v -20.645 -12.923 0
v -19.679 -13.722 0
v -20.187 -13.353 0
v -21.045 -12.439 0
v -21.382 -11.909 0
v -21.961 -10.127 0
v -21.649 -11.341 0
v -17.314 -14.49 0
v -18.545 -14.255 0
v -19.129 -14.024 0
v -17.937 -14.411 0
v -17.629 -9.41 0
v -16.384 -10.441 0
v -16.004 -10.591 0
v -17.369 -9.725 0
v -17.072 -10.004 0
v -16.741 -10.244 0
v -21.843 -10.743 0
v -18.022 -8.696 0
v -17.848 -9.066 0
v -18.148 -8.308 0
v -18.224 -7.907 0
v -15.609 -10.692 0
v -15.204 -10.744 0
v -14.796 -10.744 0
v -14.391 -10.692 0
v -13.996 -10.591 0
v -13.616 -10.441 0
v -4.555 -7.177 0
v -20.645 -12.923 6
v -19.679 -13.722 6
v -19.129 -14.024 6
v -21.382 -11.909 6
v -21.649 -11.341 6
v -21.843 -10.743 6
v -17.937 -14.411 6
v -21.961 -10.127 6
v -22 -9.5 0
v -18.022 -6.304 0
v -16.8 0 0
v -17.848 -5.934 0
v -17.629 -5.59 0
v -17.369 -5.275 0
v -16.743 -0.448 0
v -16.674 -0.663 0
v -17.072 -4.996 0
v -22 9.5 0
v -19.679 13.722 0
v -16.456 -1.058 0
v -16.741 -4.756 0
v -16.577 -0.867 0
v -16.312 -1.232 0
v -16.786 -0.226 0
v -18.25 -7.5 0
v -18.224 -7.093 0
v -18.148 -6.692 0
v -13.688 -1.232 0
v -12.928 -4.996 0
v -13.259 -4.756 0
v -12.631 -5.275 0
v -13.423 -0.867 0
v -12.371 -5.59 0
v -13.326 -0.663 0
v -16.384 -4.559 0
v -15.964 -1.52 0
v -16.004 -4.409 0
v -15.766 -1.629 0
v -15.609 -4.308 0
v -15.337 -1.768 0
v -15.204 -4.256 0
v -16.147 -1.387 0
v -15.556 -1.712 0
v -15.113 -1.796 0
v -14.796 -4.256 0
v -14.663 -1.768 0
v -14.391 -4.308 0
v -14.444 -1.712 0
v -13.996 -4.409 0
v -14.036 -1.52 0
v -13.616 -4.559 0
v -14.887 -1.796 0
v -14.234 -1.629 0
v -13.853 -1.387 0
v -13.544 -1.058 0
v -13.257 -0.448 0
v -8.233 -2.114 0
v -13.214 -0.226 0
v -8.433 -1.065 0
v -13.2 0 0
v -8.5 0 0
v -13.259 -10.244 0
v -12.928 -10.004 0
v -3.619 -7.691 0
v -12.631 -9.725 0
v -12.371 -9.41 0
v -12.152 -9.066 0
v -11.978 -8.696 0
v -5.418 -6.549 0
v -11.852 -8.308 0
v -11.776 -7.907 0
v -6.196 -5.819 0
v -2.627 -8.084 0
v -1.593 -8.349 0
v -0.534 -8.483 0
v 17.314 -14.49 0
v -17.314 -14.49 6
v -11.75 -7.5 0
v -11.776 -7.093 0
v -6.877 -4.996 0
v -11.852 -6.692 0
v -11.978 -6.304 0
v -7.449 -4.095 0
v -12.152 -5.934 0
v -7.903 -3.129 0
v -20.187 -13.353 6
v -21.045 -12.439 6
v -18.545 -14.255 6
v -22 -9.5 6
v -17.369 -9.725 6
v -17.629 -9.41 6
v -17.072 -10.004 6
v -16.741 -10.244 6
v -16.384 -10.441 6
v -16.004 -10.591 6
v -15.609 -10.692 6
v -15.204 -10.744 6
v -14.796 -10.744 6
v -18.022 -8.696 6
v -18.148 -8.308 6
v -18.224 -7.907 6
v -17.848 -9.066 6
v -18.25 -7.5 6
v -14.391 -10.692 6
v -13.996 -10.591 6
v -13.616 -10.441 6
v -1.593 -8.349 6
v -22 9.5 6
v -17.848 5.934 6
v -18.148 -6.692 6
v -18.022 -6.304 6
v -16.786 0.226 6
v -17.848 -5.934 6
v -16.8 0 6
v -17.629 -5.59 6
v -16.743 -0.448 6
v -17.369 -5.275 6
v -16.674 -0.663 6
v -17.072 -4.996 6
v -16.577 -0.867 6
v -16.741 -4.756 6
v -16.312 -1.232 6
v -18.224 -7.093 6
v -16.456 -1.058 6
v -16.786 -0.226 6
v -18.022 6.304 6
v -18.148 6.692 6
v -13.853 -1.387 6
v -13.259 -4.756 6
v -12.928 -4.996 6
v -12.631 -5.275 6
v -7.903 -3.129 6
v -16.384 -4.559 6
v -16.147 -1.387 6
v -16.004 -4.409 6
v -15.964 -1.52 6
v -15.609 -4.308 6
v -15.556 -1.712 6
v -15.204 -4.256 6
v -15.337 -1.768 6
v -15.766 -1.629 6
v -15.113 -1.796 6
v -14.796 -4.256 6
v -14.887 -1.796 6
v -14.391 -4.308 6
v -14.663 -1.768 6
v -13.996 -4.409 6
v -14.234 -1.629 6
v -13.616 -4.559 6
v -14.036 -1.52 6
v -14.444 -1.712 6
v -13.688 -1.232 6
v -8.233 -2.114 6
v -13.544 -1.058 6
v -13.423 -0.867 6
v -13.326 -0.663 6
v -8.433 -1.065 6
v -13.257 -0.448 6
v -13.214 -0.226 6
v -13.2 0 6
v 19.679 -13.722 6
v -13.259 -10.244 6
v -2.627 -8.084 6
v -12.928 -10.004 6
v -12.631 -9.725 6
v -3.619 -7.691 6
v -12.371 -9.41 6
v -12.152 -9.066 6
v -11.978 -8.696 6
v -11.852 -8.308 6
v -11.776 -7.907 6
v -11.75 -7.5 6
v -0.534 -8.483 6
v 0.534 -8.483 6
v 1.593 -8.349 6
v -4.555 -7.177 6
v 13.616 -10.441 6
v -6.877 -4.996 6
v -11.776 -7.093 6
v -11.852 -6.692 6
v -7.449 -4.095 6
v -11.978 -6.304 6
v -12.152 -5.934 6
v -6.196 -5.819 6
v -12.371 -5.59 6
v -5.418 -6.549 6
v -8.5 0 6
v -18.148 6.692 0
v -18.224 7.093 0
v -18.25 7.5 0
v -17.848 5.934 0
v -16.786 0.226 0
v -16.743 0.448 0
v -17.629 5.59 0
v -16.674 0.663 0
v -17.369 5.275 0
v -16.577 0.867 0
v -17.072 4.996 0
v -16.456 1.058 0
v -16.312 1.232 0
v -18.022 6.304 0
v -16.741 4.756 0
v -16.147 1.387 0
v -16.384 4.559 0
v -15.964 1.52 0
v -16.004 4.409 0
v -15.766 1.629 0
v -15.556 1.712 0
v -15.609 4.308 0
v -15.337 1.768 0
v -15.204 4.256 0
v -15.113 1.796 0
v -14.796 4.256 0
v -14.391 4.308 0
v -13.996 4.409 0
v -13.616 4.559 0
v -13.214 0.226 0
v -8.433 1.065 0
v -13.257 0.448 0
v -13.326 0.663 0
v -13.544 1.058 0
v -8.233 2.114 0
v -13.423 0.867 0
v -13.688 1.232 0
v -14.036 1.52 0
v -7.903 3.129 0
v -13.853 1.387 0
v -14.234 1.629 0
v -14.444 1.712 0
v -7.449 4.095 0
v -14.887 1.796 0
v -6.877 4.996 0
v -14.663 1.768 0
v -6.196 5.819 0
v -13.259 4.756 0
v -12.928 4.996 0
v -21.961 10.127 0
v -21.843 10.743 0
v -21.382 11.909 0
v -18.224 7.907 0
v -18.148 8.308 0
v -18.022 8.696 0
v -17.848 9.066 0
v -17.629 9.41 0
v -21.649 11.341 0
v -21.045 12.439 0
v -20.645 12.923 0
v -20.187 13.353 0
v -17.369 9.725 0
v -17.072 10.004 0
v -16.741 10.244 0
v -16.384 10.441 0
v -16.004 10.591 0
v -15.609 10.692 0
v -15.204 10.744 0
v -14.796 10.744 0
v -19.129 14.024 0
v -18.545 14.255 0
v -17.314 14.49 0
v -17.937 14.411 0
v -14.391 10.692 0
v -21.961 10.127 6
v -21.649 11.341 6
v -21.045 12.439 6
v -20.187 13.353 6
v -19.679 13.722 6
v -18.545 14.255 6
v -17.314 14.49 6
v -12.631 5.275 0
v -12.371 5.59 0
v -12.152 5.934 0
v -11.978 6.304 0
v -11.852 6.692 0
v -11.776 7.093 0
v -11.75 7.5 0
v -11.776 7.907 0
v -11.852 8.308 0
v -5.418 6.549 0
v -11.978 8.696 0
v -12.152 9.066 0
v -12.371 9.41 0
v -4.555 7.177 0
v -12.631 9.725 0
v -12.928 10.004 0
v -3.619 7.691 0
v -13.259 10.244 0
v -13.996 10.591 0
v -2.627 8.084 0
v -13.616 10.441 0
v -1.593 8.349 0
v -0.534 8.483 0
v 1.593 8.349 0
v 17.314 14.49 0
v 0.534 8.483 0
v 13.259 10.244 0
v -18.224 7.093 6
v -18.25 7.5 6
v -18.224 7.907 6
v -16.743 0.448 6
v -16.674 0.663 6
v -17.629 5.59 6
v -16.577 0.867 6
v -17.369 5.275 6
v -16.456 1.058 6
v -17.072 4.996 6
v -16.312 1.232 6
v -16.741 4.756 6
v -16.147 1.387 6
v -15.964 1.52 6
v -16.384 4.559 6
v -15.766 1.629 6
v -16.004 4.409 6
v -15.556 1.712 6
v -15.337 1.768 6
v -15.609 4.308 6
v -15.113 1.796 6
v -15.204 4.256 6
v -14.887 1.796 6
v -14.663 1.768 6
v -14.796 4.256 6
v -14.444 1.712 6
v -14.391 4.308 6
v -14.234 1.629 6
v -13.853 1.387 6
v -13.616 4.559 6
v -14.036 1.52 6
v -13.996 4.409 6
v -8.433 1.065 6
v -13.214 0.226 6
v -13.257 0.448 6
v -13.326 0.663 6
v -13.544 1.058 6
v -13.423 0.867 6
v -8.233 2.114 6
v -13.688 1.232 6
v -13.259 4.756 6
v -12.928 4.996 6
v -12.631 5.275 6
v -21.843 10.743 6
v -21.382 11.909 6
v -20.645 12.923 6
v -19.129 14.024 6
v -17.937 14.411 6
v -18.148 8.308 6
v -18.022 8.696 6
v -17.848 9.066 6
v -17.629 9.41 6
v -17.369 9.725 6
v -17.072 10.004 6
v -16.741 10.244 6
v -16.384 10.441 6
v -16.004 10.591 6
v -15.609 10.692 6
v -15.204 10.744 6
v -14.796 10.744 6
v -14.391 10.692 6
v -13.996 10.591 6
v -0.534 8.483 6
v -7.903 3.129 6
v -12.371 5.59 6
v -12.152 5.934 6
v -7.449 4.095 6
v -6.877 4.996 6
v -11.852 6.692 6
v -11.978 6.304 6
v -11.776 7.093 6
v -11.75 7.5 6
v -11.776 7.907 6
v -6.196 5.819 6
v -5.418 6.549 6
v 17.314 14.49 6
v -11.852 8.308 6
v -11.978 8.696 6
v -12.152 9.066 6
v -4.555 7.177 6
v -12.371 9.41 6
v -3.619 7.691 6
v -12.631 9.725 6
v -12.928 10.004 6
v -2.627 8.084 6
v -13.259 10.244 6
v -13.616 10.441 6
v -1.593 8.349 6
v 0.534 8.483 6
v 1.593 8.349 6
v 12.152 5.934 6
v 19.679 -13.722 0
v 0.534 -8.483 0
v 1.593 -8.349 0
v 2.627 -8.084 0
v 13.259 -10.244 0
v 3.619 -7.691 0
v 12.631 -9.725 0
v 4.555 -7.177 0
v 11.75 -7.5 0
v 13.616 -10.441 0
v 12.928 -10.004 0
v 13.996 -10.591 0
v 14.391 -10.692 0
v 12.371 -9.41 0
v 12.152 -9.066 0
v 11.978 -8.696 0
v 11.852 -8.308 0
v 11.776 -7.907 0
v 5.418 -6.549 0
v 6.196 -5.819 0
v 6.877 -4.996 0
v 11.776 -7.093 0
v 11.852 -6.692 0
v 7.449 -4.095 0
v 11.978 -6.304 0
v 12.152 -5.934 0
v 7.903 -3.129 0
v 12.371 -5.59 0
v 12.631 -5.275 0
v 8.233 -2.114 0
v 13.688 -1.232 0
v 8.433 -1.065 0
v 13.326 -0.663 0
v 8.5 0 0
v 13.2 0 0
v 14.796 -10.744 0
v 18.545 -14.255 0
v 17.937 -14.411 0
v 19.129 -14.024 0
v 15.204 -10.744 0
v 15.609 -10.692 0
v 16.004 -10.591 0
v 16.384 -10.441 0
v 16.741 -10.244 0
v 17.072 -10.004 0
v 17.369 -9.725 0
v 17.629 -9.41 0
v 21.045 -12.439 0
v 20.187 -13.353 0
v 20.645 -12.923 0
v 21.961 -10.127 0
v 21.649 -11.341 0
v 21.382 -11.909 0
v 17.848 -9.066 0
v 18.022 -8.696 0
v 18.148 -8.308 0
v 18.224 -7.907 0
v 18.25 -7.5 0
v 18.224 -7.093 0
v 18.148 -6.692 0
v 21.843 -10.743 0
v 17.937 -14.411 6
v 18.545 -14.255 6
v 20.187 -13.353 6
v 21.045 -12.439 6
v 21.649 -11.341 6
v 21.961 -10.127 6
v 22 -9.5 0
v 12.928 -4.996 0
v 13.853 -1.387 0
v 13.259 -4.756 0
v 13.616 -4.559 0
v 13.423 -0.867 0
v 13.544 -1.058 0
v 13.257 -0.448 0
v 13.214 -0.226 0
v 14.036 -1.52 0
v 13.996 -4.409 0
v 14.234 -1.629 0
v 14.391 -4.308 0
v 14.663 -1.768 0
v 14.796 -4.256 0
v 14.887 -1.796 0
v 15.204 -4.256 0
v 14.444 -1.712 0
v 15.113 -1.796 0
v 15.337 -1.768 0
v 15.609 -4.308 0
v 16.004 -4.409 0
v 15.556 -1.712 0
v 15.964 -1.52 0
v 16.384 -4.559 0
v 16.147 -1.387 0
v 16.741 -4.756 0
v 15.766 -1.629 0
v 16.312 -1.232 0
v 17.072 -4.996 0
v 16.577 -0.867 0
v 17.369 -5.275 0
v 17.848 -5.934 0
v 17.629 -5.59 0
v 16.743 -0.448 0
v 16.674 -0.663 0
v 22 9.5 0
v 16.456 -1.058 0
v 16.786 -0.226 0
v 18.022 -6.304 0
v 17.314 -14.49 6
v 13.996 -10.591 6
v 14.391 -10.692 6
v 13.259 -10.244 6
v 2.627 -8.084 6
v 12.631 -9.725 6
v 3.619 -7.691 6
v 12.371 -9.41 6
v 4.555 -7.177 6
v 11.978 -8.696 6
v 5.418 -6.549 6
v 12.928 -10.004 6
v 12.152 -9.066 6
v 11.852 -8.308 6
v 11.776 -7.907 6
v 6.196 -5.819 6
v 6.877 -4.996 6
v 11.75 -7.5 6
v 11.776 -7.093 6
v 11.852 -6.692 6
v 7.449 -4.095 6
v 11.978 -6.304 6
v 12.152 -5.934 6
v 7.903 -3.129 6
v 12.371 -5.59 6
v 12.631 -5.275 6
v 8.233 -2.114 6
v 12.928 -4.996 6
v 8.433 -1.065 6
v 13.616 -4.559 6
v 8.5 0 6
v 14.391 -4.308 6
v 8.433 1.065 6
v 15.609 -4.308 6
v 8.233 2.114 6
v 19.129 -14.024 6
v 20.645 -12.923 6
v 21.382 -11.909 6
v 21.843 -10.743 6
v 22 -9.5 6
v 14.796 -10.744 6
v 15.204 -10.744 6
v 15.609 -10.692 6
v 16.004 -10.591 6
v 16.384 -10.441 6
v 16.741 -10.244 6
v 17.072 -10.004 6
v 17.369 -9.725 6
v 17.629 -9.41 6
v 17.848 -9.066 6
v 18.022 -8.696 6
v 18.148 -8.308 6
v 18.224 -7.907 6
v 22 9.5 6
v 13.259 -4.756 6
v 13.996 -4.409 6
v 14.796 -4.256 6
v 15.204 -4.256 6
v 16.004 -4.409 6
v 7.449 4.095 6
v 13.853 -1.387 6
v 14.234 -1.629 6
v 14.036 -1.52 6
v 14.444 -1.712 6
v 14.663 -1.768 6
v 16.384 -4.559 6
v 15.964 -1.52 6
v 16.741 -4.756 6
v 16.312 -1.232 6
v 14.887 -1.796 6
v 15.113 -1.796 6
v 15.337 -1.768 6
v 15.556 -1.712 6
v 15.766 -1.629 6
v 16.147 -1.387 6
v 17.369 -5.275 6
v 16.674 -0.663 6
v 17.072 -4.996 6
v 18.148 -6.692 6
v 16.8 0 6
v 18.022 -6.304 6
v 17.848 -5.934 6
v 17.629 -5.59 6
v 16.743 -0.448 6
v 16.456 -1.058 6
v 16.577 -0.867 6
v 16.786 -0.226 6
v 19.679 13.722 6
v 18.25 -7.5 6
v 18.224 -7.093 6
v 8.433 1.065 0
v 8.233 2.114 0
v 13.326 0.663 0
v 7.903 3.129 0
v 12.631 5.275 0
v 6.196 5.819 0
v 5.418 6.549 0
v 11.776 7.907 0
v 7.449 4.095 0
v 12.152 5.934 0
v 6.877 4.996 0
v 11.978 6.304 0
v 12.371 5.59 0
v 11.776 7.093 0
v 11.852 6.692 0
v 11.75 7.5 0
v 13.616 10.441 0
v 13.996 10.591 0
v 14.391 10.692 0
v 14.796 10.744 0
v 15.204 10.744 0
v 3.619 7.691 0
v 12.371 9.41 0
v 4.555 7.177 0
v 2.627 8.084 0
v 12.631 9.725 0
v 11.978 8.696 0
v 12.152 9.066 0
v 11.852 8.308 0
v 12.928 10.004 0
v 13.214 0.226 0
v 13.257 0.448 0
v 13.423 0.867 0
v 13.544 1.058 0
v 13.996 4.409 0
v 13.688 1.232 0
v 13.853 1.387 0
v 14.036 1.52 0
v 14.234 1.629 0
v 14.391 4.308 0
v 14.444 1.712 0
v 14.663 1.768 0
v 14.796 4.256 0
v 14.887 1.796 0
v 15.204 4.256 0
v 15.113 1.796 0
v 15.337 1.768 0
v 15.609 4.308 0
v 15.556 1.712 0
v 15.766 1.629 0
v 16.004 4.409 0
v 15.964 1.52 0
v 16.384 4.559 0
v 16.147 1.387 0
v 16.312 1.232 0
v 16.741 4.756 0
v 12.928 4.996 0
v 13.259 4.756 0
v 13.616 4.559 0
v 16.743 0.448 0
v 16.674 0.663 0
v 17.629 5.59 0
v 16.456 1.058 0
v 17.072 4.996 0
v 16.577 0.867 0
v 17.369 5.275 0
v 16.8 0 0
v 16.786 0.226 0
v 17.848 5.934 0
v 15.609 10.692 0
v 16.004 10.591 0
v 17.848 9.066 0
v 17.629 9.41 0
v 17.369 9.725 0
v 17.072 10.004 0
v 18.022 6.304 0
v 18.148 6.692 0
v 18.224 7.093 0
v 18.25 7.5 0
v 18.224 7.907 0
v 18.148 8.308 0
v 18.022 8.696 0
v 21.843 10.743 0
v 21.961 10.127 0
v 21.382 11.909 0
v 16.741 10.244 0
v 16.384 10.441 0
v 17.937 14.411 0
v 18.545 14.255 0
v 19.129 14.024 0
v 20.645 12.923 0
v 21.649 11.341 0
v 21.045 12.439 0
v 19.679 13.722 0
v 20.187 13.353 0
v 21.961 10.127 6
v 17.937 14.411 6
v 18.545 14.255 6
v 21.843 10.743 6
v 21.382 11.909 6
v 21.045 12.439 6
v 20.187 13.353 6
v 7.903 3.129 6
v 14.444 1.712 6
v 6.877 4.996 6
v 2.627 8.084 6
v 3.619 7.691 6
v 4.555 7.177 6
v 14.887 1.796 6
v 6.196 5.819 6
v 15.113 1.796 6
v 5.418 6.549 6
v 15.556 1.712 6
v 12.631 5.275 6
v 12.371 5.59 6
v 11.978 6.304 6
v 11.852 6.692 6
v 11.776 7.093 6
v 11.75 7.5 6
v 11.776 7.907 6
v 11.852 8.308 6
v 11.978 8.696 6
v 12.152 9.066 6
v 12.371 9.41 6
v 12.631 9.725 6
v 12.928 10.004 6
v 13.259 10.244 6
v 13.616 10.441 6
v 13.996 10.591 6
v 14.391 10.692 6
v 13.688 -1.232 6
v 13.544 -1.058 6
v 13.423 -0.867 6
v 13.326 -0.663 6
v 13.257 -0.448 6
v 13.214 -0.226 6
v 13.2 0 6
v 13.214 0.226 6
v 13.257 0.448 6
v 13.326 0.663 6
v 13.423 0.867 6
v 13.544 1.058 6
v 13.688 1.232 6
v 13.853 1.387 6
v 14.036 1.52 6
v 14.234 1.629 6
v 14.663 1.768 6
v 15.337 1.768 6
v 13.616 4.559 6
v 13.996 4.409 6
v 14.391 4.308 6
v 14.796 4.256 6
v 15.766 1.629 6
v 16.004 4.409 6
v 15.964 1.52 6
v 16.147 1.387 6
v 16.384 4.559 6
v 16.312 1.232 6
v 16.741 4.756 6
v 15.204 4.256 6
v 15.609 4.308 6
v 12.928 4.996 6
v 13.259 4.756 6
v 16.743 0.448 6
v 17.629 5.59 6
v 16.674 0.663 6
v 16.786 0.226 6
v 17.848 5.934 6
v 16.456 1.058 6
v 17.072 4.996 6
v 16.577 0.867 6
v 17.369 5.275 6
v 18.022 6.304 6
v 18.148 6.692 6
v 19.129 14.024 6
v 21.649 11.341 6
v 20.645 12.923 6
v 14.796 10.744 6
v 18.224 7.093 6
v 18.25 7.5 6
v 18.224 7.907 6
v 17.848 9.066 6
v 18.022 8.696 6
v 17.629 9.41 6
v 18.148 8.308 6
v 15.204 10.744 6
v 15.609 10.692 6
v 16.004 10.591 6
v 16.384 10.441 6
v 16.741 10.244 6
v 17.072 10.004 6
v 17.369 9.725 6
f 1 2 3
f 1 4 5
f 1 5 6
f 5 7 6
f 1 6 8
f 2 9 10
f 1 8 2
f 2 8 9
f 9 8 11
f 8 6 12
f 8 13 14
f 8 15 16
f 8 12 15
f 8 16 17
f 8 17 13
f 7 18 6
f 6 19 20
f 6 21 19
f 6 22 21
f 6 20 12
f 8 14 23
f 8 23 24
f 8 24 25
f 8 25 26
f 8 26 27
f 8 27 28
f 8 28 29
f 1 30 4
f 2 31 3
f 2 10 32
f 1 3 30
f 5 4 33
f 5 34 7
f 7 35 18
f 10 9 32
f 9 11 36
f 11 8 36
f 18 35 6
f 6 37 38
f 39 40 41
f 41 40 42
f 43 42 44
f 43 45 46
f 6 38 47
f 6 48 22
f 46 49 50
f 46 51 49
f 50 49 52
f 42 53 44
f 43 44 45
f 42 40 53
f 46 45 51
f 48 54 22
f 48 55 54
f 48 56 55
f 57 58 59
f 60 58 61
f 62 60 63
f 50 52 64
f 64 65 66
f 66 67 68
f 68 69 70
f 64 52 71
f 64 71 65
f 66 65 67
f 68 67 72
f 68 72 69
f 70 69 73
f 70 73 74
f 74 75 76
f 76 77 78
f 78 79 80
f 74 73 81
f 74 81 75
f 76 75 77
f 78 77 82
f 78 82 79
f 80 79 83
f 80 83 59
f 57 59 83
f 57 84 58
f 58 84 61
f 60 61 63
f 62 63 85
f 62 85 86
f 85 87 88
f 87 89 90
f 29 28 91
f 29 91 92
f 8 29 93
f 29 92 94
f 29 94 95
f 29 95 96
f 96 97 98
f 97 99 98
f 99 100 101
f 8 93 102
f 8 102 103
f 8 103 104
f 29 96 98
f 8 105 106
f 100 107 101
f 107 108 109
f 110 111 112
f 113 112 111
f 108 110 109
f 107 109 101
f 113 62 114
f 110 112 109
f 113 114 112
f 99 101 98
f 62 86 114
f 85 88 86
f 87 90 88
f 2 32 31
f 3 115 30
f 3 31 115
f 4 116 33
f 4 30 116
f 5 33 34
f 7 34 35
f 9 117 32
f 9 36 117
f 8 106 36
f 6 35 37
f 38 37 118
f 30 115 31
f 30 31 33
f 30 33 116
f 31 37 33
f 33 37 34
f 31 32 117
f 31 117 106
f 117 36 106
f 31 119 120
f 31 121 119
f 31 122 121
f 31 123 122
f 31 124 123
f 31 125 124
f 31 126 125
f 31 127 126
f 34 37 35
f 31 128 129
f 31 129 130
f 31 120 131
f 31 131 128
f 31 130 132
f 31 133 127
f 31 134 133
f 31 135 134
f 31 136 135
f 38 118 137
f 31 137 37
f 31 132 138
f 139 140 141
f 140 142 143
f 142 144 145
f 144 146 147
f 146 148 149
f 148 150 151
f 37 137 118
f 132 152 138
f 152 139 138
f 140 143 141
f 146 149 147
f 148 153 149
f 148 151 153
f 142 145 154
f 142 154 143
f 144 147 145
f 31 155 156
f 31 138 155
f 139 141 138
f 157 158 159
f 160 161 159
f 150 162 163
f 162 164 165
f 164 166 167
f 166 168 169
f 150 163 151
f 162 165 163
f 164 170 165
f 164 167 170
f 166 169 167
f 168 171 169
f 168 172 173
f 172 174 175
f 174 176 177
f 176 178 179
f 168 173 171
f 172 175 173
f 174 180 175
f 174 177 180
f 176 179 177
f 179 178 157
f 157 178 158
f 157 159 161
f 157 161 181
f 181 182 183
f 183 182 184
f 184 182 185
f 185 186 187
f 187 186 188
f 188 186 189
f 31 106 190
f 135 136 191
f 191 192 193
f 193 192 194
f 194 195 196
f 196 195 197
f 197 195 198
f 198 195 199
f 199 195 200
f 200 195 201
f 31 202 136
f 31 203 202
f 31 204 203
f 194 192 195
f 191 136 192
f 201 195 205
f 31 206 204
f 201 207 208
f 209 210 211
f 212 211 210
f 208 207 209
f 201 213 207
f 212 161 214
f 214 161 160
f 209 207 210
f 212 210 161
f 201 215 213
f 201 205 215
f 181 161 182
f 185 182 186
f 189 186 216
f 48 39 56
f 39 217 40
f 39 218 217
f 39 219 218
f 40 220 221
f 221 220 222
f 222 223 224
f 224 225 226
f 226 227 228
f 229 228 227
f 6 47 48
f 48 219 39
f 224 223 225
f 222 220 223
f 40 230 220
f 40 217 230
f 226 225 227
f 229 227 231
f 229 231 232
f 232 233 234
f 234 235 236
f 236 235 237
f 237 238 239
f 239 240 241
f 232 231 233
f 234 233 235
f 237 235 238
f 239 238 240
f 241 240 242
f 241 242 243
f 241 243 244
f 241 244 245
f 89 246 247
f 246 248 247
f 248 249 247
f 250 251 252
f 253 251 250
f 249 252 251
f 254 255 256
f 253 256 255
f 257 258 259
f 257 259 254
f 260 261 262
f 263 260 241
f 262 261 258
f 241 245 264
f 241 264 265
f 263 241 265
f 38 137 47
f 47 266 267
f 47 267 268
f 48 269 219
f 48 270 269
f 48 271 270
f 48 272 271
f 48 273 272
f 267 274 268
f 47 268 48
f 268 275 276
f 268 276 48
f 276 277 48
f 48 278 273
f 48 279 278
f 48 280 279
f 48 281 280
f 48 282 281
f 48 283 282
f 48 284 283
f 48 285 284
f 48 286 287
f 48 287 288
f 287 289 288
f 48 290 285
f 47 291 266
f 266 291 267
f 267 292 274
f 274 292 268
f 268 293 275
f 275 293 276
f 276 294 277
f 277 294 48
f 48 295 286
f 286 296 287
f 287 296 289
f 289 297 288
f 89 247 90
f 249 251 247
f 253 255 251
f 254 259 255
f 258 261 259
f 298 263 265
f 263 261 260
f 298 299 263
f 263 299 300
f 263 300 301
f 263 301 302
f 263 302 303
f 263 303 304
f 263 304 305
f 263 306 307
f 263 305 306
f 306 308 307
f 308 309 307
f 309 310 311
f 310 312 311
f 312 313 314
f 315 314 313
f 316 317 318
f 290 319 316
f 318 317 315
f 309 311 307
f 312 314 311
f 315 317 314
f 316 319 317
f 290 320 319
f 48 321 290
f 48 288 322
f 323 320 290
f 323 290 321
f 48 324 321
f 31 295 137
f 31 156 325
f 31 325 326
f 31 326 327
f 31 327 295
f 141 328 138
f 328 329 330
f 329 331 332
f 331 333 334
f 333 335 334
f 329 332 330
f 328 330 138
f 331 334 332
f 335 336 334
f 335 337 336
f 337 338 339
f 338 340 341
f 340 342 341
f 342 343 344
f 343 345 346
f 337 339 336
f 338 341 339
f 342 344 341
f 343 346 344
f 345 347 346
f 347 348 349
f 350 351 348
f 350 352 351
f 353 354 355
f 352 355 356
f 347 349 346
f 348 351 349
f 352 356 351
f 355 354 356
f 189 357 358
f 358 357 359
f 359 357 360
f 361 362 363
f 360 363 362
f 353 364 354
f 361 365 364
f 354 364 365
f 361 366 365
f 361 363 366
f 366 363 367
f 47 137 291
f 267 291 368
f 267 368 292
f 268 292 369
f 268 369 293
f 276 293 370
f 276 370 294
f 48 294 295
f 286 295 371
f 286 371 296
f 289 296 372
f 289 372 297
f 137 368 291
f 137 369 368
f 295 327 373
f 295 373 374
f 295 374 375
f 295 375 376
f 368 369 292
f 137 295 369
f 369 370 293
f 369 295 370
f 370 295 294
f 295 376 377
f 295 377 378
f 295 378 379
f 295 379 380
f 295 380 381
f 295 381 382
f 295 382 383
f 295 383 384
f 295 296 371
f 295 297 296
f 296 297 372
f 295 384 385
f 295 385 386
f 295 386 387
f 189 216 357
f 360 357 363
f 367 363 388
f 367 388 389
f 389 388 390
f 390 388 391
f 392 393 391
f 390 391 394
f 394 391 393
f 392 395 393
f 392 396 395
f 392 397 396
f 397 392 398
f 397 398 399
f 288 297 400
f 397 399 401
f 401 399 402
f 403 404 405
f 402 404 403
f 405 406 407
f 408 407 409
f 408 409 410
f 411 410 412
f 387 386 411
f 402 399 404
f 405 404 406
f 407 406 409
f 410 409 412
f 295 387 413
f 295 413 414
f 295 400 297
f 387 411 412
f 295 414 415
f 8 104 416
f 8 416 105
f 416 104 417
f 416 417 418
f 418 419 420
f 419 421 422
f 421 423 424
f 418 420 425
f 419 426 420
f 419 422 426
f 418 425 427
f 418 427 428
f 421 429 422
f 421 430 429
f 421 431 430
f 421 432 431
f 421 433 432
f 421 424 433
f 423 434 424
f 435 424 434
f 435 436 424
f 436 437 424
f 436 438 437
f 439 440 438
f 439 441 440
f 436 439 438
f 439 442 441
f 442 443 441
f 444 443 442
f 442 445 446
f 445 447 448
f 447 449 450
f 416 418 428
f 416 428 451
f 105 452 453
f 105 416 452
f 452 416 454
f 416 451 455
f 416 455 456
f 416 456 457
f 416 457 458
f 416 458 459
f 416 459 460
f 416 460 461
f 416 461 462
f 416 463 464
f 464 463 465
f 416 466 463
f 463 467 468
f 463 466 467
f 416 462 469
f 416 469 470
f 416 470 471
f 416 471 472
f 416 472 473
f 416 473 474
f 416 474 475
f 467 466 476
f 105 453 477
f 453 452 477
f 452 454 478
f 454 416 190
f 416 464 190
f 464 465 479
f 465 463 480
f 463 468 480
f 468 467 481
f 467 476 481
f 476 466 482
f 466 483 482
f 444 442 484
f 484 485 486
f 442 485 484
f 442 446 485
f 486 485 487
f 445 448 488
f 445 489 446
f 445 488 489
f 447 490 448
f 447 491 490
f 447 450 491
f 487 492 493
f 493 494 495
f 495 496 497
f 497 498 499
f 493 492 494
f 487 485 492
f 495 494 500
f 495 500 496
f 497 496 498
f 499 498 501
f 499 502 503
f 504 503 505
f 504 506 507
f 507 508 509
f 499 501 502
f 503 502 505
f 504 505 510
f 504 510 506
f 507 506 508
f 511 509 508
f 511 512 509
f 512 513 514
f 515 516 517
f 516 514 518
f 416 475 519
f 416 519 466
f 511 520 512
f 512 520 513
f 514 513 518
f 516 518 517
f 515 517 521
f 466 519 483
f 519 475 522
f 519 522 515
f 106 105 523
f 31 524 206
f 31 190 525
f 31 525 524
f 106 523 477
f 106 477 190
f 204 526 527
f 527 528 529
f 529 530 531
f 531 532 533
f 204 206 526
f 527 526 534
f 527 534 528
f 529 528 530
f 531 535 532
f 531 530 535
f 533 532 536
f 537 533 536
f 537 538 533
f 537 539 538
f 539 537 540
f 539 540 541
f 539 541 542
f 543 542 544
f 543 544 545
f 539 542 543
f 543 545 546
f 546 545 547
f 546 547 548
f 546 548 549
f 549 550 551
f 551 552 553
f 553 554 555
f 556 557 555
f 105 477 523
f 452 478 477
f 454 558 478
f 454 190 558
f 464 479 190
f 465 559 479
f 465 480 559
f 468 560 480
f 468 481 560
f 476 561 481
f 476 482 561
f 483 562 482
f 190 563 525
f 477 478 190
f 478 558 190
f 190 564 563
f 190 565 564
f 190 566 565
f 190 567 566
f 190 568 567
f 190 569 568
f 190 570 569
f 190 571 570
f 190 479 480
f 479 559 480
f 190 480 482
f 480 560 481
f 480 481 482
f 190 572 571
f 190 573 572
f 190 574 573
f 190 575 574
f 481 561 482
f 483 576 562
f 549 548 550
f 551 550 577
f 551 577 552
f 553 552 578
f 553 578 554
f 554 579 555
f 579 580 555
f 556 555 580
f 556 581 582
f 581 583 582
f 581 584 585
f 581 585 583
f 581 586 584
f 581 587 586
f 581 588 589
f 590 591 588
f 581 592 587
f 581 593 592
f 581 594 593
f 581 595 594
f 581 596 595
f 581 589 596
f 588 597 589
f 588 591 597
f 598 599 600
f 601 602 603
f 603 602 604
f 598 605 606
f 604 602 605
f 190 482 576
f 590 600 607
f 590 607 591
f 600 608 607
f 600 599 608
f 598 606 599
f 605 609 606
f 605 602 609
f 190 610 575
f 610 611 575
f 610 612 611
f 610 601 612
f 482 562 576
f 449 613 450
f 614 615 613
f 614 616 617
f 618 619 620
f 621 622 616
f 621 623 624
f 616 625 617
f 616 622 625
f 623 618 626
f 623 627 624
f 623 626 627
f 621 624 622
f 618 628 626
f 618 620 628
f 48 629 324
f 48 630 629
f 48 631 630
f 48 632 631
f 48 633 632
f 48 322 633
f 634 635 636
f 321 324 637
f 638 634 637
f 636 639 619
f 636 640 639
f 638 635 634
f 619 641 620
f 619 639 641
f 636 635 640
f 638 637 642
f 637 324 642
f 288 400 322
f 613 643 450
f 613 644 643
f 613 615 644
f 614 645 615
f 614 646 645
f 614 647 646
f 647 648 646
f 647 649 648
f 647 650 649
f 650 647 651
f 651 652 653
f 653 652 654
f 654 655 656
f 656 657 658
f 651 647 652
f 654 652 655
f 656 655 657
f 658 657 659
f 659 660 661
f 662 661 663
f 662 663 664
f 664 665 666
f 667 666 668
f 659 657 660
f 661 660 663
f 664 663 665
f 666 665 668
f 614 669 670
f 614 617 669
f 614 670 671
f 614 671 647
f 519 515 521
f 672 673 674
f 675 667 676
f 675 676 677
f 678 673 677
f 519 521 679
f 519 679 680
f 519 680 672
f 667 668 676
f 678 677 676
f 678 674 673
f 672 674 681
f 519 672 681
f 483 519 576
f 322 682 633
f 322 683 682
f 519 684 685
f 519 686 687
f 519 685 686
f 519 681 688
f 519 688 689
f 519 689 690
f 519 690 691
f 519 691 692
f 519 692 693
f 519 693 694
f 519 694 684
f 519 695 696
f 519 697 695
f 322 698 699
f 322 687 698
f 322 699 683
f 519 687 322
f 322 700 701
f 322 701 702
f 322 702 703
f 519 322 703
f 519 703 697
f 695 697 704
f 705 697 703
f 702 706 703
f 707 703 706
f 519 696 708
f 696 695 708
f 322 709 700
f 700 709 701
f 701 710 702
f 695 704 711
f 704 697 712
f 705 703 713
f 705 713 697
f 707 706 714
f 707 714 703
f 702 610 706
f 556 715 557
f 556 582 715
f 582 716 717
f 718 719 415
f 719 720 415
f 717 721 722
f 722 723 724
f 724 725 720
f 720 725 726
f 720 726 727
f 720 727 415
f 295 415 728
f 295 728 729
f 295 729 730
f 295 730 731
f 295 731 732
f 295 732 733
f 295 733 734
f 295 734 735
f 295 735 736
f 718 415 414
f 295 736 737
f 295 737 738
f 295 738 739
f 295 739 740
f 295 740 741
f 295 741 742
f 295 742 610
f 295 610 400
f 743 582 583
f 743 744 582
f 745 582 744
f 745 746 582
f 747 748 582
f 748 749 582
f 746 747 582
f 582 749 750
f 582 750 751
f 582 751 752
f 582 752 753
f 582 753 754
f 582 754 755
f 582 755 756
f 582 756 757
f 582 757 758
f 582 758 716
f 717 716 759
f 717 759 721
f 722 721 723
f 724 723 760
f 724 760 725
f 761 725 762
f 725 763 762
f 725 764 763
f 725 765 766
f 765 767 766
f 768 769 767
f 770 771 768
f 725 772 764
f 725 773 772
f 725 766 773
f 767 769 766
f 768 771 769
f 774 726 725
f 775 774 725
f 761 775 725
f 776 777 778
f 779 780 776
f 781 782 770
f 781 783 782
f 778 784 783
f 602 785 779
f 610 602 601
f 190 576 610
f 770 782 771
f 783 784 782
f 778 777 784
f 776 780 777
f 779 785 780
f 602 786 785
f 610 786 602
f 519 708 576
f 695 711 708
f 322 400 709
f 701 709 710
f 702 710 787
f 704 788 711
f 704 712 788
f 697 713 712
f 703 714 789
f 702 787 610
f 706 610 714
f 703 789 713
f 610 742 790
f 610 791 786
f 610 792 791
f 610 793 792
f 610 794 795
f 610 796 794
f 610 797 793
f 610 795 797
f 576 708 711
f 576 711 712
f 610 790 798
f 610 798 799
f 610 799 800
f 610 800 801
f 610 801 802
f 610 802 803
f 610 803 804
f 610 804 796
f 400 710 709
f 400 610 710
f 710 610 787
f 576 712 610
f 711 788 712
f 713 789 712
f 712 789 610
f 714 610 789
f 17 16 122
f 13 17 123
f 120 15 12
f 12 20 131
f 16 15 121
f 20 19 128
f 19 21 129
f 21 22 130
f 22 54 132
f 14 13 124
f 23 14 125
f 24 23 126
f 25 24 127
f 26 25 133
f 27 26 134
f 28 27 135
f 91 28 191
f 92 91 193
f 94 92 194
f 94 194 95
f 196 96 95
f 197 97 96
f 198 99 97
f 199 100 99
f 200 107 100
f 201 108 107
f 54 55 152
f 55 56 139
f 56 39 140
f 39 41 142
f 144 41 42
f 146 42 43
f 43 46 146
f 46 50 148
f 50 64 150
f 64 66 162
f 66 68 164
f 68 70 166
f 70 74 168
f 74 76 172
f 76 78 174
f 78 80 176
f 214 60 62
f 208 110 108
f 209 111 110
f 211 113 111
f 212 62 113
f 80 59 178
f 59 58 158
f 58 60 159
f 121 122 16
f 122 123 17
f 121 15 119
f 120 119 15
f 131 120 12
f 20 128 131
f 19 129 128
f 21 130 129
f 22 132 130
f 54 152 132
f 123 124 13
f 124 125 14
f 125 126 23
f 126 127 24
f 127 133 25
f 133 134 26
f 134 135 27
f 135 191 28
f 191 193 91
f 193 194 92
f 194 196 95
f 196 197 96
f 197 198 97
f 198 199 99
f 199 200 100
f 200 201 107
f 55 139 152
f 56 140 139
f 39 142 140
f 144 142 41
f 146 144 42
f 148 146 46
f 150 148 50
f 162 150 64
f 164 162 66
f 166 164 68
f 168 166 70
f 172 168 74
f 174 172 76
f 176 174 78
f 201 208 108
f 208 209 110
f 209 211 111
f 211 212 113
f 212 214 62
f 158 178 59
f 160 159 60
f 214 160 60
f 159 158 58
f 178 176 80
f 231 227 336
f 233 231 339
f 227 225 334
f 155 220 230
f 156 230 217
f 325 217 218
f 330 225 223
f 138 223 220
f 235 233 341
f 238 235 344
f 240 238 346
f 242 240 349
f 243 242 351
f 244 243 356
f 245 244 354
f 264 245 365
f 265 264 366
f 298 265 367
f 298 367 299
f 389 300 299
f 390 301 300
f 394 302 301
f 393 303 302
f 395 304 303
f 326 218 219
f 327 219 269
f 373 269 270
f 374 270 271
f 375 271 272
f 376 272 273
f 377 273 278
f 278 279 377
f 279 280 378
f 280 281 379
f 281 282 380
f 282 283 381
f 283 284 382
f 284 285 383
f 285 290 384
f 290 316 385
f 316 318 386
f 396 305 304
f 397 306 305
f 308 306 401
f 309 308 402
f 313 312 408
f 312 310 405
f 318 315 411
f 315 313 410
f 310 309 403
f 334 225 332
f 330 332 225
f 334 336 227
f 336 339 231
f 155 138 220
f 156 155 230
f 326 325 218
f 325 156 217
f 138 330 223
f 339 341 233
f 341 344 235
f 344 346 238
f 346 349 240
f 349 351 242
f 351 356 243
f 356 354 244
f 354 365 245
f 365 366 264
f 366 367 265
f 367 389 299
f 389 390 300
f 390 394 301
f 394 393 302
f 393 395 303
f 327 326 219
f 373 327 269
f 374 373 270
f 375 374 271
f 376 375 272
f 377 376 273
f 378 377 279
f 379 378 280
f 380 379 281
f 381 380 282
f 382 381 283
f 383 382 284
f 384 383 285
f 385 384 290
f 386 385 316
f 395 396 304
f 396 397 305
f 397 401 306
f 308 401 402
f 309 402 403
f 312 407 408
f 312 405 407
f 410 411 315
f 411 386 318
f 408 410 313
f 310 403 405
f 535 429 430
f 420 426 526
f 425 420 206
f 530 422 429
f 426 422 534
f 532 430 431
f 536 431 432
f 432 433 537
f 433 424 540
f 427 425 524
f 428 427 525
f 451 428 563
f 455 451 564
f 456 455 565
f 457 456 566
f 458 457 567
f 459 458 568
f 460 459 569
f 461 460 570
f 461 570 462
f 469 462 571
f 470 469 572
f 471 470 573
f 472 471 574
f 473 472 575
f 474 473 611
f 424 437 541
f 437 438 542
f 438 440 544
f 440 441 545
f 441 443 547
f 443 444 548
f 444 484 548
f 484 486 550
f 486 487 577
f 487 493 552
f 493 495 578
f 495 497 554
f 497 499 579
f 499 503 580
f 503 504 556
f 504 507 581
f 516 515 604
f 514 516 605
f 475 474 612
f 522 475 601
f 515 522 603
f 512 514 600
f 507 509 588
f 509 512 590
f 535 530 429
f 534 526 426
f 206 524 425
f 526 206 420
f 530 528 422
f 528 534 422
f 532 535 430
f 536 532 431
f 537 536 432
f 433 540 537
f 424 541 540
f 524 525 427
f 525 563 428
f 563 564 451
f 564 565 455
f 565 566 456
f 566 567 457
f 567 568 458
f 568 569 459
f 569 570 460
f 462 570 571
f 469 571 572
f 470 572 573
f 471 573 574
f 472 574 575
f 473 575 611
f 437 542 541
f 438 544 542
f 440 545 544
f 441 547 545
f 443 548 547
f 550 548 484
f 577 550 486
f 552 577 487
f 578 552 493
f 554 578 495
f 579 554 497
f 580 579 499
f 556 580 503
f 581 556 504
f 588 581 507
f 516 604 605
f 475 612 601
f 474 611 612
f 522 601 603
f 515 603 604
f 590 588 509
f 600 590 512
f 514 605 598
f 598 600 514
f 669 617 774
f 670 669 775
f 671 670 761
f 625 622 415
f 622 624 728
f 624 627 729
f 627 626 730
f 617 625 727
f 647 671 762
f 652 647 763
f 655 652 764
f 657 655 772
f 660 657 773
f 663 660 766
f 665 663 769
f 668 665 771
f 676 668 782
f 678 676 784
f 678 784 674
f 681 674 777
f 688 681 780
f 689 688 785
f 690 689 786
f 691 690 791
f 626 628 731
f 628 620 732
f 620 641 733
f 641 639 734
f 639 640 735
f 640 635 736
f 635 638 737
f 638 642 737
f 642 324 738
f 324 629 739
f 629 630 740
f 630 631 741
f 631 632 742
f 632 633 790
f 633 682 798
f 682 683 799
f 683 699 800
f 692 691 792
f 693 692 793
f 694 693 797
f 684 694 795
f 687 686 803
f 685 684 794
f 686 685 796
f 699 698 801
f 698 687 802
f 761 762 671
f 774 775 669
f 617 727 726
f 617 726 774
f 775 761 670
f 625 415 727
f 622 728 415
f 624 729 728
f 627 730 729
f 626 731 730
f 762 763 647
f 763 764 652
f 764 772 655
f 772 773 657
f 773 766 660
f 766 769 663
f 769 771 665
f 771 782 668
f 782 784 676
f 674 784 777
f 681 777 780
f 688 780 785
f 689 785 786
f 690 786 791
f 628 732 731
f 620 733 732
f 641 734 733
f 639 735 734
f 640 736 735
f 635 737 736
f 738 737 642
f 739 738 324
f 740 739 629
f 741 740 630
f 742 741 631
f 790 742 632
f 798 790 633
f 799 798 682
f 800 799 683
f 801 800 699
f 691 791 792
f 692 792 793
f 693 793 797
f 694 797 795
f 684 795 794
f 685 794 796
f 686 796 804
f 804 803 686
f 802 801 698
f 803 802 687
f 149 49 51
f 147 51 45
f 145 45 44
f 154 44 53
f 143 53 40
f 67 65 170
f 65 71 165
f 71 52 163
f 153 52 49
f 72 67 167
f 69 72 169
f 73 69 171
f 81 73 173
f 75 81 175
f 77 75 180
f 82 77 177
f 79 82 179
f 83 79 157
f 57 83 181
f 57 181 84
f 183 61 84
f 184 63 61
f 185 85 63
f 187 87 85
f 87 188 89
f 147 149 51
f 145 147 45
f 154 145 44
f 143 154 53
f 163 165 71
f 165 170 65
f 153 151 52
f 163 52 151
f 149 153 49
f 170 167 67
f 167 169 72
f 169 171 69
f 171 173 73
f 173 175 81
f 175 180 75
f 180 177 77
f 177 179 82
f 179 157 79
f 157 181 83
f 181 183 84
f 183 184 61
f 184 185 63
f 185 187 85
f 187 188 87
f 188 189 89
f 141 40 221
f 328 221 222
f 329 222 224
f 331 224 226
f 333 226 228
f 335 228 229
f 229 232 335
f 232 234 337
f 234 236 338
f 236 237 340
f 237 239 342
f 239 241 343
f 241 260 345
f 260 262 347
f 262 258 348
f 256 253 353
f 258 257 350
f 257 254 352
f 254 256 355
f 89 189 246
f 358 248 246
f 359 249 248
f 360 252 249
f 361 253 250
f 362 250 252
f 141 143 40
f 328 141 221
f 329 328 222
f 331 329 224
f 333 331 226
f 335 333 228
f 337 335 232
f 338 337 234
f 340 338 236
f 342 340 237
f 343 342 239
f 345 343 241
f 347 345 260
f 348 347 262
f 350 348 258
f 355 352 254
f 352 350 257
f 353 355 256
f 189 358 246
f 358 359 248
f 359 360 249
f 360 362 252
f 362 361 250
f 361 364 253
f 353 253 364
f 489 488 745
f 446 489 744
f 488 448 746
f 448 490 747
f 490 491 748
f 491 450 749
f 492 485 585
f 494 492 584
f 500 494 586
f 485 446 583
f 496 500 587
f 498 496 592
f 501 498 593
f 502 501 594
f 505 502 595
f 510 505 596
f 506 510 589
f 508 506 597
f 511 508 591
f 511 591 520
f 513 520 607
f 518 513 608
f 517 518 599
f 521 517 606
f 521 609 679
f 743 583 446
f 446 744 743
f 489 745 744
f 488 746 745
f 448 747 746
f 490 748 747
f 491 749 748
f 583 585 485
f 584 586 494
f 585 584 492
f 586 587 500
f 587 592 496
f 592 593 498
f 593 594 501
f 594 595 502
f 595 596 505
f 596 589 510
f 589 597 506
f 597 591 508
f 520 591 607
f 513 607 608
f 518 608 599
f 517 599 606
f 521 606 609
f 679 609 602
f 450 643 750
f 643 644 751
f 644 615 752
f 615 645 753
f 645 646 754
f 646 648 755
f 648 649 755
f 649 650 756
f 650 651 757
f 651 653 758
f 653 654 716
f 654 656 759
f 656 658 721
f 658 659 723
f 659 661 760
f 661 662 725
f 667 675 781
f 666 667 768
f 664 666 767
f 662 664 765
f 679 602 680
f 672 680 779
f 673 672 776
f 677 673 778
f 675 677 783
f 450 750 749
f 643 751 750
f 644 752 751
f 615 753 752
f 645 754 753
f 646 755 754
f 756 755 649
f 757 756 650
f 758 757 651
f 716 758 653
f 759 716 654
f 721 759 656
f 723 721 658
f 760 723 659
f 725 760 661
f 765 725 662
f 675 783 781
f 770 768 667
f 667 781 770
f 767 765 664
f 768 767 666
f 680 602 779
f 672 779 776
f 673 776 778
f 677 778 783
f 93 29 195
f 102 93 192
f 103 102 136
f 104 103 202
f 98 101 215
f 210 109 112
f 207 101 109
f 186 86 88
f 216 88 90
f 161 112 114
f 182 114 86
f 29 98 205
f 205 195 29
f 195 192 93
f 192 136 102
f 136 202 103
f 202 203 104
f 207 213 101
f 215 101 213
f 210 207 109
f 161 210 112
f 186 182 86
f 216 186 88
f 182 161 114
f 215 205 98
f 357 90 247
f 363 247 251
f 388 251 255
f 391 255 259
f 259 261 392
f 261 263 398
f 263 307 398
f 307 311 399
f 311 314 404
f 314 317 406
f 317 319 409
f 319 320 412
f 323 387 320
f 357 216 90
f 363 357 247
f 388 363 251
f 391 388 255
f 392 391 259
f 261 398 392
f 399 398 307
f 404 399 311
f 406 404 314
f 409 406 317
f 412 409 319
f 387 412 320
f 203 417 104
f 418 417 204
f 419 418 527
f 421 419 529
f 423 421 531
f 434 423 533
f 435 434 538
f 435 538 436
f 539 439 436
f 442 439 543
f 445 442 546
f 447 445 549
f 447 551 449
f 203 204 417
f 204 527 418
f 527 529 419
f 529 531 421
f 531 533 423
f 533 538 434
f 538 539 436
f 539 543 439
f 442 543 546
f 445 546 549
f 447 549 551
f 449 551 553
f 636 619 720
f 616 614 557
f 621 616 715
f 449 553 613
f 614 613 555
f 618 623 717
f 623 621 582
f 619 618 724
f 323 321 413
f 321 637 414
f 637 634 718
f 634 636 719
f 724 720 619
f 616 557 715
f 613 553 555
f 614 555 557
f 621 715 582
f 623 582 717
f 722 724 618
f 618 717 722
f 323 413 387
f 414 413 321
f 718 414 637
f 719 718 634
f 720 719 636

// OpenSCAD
$fn = 50;

difference() {
	union() {
		hull() {
			translate(v = [-17.0, 9.5, 0]) {
				cylinder(h = 6, r = 5);
			}
			translate(v = [17.0, 9.5, 0]) {
				cylinder(h = 6, r = 5);
			}
			translate(v = [-17.0, -9.5, 0]) {
				cylinder(h = 6, r = 5);
			}
			translate(v = [17.0, -9.5, 0]) {
				cylinder(h = 6, r = 5);
			}
		}
	}
	union() {
		translate(v = [-15.0, -7.5, 0]) {
			cylinder(h = 6, r = 3.25);
		}
		translate(v = [-15.0, 7.5, 0]) {
			cylinder(h = 6, r = 3.25);
		}
		translate(v = [15.0, -7.5, 0]) {
			cylinder(h = 6, r = 3.25);
		}
		translate(v = [15.0, 7.5, 0]) {
			cylinder(h = 6, r = 3.25);
		}
		translate(v = [-15.0, 0.0, 0]) {
			cylinder(h = 6, r = 1.8);
		}
		translate(v = [15.0, 0.0, 0]) {
			cylinder(h = 6, r = 1.8);
		}
		cylinder(h = 6, r = 8.5);
	}
}
